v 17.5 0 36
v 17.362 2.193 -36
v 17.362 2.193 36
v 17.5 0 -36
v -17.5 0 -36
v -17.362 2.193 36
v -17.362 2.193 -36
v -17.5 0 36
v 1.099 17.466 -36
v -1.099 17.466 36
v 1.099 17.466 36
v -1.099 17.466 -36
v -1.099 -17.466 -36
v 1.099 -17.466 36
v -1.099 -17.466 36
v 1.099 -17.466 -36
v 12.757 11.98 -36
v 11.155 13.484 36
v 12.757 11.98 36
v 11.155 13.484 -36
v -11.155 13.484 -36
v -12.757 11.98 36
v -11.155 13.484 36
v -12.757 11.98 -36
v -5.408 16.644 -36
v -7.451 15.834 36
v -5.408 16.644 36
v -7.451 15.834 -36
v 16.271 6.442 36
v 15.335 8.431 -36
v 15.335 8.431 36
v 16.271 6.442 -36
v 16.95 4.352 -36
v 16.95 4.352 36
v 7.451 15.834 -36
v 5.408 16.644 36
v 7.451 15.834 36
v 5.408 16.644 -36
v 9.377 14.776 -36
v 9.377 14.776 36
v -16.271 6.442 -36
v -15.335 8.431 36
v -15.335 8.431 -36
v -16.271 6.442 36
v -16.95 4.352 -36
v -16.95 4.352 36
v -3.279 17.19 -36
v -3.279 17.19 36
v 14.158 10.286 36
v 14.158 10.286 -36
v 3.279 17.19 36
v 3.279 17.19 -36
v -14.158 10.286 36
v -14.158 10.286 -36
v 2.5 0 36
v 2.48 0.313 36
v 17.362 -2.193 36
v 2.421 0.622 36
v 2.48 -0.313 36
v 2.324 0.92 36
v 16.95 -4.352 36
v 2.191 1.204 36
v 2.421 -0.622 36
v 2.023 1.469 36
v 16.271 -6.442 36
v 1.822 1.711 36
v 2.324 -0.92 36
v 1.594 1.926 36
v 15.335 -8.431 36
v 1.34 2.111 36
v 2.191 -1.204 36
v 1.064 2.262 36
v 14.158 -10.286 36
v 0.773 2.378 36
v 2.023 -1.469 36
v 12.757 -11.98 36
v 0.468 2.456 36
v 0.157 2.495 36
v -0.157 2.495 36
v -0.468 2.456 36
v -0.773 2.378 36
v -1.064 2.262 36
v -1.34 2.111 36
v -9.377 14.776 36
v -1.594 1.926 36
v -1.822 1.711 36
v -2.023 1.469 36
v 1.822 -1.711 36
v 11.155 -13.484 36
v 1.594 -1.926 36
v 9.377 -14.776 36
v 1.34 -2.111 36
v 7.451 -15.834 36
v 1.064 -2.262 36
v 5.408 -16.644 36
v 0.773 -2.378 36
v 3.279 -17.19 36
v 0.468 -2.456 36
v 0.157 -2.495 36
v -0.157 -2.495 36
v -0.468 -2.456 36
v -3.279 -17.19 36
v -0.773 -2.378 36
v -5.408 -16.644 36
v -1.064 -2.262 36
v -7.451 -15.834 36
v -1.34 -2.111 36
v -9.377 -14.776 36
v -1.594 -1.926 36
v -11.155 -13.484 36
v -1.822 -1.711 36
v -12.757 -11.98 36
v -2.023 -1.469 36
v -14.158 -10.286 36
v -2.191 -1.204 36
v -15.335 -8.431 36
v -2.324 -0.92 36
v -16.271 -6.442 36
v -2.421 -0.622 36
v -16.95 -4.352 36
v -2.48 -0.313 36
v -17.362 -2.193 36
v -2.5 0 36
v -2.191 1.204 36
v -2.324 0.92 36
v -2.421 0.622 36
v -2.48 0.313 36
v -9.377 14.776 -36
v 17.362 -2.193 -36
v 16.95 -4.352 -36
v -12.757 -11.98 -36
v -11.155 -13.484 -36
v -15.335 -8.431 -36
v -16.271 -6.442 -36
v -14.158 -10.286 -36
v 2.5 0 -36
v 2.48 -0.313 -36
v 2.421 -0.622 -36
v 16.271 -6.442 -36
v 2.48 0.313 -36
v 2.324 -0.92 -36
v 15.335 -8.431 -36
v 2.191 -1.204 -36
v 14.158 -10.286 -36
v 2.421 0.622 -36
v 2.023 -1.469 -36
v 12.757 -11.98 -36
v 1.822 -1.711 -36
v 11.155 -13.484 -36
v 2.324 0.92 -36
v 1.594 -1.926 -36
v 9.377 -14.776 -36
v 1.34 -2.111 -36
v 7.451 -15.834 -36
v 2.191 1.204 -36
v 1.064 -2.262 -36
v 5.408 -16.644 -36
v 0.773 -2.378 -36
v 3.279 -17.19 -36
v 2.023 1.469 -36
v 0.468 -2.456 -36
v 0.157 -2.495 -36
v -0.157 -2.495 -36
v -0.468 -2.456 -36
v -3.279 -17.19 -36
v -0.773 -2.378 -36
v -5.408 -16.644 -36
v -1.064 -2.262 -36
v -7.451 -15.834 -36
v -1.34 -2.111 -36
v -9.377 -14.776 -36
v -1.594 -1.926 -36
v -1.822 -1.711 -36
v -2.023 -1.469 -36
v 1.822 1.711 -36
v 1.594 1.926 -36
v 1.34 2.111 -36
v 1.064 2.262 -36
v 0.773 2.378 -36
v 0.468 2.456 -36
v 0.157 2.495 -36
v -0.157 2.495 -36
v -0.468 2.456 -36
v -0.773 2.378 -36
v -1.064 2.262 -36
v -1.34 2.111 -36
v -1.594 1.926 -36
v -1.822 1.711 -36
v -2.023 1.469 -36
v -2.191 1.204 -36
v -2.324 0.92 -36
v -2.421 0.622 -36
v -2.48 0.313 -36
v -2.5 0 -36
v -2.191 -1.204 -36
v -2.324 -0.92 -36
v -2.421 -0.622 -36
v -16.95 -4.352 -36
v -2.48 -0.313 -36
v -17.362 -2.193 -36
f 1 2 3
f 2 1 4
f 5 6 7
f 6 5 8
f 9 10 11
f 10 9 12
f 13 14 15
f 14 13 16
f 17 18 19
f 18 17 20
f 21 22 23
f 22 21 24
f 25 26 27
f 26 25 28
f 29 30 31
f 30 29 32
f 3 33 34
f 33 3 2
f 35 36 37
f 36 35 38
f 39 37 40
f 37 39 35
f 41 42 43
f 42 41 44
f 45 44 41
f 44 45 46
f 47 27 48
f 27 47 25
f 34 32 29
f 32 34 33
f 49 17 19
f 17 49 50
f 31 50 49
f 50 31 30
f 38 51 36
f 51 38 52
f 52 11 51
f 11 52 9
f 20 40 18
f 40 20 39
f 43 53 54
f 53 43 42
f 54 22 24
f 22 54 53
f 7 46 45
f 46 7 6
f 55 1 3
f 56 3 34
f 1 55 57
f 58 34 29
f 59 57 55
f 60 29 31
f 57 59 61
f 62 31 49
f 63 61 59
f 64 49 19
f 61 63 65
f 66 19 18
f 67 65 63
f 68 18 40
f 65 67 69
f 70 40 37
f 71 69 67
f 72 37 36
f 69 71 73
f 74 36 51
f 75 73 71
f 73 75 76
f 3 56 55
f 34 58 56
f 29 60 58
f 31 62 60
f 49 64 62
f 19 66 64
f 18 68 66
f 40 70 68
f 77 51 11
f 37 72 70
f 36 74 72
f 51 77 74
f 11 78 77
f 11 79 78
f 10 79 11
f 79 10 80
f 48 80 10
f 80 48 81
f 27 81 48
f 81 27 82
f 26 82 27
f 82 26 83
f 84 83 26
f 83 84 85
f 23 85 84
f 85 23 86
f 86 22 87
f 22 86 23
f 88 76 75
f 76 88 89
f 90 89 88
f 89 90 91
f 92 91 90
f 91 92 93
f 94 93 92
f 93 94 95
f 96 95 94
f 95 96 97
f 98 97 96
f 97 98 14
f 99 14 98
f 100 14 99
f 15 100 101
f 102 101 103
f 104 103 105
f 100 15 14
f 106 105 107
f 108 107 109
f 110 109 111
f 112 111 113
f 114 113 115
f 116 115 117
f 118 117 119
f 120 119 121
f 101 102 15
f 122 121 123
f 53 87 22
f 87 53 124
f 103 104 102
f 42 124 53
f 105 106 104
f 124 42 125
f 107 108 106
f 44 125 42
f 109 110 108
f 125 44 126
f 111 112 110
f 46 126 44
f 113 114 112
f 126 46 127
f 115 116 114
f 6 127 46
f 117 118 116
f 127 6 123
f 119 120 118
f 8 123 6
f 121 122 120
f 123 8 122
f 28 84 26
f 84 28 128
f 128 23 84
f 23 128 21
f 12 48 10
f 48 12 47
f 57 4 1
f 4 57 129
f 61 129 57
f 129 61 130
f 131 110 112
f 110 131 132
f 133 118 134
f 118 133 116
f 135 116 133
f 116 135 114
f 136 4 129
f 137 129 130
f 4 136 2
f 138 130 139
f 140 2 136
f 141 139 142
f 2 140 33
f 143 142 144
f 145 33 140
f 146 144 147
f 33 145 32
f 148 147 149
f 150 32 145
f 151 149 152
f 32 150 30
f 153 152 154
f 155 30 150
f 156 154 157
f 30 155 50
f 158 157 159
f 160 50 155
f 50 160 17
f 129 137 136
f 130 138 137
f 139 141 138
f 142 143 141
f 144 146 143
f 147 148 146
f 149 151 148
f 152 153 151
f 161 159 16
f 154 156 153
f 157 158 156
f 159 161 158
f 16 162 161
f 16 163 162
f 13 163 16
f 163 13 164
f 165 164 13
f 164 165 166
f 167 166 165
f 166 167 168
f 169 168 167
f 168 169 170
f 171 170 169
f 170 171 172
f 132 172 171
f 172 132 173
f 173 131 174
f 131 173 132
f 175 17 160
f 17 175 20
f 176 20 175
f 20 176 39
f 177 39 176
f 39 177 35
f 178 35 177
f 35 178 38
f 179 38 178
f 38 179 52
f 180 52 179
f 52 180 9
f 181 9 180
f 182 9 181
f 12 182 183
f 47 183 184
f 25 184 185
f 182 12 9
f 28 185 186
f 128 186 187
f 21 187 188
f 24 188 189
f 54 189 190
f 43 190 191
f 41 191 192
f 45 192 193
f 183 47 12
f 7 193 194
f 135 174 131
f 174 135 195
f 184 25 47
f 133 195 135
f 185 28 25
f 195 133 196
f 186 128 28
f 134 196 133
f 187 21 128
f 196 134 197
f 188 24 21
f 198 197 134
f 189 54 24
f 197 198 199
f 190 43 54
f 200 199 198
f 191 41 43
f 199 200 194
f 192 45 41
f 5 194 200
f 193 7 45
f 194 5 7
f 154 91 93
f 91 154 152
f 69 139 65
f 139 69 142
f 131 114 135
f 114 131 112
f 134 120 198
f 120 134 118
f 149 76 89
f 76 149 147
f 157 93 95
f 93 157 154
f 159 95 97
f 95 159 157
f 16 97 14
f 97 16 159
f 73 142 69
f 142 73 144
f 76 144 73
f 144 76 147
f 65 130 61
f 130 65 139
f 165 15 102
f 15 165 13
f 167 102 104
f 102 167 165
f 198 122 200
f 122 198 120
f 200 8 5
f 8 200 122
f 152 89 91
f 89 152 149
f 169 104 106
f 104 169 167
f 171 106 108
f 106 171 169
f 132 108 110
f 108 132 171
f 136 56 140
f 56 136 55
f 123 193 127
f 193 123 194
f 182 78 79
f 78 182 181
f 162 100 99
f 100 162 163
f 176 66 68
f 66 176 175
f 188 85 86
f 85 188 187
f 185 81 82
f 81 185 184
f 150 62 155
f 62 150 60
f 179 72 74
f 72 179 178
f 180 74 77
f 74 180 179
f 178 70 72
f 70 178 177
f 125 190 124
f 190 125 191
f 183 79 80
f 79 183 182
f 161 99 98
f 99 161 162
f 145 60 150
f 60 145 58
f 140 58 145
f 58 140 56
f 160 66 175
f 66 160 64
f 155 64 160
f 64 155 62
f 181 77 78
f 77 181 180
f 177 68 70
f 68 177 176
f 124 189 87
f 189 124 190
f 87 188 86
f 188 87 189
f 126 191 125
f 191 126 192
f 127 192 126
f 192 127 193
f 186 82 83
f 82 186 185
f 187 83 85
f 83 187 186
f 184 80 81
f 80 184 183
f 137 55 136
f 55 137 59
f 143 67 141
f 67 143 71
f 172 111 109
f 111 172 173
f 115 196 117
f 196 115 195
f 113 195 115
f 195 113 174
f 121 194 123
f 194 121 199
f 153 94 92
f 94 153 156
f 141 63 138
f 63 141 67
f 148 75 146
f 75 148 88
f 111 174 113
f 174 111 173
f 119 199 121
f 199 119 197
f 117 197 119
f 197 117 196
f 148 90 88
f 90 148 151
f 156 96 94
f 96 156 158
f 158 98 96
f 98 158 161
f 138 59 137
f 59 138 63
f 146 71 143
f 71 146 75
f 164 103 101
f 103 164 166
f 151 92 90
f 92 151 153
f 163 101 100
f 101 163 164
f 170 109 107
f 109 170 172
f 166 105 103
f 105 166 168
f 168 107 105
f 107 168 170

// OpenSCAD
$fn = 50;


difference() {
	union() {
		translate(v = [0, 0, -36.0000000000]) {
			cylinder(h = 72, r = 17.5000000000);
		}
	}
	union() {
		translate(v = [0, 0, -100.0000000000]) {
			cylinder(h = 200, r = 2.5000000000);
		}
	}
}
